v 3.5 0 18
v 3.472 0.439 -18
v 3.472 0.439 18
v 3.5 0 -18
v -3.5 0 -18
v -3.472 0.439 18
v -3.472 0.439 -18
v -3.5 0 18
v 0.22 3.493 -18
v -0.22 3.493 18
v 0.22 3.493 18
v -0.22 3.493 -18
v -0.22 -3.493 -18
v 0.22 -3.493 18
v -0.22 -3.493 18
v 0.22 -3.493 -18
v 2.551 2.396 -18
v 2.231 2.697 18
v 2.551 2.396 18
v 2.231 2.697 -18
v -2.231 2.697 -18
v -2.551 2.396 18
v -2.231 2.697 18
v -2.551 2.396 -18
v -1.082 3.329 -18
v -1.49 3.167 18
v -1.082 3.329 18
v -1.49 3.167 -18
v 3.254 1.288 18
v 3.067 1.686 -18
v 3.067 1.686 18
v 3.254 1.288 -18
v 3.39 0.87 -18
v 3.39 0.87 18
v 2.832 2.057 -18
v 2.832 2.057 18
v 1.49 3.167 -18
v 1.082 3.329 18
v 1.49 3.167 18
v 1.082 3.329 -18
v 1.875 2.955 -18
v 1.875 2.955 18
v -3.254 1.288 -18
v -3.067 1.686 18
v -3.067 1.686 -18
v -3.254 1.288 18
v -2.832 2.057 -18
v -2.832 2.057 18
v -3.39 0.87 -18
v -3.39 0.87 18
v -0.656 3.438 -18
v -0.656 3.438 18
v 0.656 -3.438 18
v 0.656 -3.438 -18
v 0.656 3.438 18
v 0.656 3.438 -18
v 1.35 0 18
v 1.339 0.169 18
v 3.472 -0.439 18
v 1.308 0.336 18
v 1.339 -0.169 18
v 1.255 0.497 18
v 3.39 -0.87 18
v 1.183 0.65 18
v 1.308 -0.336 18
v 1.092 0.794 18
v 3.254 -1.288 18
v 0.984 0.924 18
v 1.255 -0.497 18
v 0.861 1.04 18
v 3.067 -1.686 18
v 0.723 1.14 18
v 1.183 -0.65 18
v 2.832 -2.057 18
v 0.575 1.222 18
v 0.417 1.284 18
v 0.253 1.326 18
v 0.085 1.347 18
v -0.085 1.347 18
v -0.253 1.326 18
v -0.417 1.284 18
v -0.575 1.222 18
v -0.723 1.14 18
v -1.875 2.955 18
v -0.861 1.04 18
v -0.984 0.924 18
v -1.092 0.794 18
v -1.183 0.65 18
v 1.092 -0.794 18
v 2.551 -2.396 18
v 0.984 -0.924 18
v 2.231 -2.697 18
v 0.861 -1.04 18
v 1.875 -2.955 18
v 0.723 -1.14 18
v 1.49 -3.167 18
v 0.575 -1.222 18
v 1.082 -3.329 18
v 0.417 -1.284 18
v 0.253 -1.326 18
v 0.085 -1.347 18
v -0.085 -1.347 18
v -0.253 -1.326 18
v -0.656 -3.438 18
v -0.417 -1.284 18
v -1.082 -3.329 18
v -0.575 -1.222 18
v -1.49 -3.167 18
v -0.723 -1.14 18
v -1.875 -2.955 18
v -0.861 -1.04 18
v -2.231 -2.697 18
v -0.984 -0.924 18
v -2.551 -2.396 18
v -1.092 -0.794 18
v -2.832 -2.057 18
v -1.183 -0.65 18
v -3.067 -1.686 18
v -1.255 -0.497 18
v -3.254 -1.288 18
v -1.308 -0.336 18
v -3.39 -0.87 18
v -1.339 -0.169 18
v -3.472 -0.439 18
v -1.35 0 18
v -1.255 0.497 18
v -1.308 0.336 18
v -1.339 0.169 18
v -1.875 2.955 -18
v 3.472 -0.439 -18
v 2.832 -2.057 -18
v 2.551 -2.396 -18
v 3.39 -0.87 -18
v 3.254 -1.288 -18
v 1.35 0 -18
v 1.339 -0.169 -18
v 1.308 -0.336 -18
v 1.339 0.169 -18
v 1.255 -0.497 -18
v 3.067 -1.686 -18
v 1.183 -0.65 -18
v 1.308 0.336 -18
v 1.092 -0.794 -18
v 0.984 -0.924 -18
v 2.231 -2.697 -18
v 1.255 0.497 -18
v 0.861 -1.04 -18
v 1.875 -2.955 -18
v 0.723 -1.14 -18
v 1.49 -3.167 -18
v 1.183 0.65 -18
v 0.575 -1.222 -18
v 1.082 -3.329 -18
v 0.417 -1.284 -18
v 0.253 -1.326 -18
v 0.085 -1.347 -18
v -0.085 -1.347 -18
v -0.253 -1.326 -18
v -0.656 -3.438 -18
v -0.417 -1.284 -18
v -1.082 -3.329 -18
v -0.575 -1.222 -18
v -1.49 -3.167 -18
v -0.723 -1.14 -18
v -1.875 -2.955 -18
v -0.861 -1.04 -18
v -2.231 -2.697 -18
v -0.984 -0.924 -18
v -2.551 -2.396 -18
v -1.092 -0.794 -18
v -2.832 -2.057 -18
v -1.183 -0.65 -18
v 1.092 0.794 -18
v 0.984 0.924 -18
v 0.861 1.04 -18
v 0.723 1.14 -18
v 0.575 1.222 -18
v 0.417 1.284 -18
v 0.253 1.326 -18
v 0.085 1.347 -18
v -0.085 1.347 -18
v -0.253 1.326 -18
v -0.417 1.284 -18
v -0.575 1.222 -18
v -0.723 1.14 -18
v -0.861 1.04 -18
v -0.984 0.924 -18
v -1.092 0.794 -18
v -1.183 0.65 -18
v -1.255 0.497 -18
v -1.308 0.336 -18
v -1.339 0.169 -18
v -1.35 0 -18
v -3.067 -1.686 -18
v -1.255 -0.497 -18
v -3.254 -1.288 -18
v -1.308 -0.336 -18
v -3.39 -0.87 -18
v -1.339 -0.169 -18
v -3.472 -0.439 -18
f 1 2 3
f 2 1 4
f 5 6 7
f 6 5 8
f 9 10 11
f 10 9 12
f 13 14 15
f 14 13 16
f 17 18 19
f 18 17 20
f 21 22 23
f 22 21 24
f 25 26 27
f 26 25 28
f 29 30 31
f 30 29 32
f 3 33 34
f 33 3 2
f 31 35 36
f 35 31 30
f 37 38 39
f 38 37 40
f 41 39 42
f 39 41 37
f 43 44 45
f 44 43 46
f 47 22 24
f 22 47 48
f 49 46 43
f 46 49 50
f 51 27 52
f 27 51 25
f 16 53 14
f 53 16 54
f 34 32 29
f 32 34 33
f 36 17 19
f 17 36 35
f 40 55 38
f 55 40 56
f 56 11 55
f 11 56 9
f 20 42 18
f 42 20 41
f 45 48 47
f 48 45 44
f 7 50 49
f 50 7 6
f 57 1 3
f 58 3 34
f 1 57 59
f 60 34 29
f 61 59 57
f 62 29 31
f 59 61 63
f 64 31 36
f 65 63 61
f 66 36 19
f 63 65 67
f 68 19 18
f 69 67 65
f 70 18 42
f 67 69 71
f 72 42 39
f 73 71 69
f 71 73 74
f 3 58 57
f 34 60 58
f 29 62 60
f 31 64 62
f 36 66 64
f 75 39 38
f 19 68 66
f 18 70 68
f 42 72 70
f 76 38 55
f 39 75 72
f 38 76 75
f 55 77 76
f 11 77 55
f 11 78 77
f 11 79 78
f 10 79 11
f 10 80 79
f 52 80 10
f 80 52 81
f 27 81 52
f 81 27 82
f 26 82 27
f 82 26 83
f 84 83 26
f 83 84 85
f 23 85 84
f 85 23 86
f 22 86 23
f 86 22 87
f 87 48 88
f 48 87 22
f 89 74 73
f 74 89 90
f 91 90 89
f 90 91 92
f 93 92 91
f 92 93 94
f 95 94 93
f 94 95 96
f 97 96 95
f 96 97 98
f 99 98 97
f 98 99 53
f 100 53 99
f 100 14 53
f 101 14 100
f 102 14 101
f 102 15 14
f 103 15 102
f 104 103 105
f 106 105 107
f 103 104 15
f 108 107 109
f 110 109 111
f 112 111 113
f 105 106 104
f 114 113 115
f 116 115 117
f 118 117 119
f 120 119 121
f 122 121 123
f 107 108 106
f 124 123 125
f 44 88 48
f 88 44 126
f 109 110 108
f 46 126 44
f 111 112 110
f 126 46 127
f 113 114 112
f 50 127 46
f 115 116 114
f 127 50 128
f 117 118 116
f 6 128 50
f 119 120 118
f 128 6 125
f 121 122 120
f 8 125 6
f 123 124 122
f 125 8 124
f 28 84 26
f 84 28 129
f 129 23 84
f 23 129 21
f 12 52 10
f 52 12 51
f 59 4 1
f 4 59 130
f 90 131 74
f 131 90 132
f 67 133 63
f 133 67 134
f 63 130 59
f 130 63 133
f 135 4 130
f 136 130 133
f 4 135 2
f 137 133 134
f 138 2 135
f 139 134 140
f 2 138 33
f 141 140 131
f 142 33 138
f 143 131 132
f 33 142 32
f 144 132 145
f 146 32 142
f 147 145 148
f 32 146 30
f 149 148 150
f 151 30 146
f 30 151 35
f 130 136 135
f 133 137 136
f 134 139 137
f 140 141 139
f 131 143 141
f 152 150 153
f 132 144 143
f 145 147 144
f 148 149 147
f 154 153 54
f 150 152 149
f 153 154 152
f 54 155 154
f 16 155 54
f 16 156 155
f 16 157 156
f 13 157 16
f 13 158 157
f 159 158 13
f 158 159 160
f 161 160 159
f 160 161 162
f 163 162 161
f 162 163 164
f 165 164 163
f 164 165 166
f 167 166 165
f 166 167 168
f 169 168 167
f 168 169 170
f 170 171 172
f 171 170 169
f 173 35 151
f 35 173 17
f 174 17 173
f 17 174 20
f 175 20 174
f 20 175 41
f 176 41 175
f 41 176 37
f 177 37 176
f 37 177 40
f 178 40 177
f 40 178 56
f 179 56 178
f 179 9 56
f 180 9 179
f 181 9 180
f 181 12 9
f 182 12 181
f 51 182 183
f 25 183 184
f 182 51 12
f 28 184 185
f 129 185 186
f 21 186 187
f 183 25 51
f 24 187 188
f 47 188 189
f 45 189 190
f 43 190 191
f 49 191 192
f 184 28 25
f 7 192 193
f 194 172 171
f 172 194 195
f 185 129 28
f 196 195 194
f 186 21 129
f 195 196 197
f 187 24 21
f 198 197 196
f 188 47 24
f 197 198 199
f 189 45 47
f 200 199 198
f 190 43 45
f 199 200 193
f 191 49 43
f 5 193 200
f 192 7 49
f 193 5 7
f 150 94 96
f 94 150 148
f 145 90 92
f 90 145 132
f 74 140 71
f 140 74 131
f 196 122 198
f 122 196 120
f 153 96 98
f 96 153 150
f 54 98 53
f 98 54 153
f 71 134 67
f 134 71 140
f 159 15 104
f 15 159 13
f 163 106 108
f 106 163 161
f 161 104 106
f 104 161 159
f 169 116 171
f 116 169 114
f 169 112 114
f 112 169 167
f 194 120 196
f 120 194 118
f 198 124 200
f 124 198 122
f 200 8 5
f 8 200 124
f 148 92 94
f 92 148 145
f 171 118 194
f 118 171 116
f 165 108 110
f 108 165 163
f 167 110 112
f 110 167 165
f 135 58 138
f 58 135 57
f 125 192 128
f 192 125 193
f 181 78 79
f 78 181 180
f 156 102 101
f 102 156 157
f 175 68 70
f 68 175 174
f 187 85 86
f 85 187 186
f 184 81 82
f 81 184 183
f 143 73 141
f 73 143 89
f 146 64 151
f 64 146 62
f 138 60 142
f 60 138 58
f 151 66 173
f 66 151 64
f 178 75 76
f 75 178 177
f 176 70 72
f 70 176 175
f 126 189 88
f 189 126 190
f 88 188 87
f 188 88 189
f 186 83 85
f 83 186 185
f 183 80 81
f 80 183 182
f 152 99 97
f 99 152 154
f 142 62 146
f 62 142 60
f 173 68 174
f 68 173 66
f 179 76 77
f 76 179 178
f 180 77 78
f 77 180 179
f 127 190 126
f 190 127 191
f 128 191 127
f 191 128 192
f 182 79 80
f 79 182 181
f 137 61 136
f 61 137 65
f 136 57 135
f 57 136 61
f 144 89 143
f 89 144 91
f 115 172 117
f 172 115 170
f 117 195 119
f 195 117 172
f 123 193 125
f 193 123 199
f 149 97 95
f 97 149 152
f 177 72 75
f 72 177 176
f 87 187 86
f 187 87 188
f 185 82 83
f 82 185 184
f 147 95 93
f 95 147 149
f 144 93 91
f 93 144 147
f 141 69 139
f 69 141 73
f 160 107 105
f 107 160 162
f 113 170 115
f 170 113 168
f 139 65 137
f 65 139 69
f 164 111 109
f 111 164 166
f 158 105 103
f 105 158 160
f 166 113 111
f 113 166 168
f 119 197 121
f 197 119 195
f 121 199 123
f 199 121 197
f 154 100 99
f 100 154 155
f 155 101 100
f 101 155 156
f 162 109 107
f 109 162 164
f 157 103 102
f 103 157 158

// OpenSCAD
$fn = 50;


difference() {
	union() {
		translate(v = [0, 0, -18.0000000000]) {
			cylinder(h = 36, r = 3.5000000000);
		}
	}
	union() {
		translate(v = [0, 0, -100.0000000000]) {
			cylinder(h = 200, r = 1.3500000000);
		}
	}
}
